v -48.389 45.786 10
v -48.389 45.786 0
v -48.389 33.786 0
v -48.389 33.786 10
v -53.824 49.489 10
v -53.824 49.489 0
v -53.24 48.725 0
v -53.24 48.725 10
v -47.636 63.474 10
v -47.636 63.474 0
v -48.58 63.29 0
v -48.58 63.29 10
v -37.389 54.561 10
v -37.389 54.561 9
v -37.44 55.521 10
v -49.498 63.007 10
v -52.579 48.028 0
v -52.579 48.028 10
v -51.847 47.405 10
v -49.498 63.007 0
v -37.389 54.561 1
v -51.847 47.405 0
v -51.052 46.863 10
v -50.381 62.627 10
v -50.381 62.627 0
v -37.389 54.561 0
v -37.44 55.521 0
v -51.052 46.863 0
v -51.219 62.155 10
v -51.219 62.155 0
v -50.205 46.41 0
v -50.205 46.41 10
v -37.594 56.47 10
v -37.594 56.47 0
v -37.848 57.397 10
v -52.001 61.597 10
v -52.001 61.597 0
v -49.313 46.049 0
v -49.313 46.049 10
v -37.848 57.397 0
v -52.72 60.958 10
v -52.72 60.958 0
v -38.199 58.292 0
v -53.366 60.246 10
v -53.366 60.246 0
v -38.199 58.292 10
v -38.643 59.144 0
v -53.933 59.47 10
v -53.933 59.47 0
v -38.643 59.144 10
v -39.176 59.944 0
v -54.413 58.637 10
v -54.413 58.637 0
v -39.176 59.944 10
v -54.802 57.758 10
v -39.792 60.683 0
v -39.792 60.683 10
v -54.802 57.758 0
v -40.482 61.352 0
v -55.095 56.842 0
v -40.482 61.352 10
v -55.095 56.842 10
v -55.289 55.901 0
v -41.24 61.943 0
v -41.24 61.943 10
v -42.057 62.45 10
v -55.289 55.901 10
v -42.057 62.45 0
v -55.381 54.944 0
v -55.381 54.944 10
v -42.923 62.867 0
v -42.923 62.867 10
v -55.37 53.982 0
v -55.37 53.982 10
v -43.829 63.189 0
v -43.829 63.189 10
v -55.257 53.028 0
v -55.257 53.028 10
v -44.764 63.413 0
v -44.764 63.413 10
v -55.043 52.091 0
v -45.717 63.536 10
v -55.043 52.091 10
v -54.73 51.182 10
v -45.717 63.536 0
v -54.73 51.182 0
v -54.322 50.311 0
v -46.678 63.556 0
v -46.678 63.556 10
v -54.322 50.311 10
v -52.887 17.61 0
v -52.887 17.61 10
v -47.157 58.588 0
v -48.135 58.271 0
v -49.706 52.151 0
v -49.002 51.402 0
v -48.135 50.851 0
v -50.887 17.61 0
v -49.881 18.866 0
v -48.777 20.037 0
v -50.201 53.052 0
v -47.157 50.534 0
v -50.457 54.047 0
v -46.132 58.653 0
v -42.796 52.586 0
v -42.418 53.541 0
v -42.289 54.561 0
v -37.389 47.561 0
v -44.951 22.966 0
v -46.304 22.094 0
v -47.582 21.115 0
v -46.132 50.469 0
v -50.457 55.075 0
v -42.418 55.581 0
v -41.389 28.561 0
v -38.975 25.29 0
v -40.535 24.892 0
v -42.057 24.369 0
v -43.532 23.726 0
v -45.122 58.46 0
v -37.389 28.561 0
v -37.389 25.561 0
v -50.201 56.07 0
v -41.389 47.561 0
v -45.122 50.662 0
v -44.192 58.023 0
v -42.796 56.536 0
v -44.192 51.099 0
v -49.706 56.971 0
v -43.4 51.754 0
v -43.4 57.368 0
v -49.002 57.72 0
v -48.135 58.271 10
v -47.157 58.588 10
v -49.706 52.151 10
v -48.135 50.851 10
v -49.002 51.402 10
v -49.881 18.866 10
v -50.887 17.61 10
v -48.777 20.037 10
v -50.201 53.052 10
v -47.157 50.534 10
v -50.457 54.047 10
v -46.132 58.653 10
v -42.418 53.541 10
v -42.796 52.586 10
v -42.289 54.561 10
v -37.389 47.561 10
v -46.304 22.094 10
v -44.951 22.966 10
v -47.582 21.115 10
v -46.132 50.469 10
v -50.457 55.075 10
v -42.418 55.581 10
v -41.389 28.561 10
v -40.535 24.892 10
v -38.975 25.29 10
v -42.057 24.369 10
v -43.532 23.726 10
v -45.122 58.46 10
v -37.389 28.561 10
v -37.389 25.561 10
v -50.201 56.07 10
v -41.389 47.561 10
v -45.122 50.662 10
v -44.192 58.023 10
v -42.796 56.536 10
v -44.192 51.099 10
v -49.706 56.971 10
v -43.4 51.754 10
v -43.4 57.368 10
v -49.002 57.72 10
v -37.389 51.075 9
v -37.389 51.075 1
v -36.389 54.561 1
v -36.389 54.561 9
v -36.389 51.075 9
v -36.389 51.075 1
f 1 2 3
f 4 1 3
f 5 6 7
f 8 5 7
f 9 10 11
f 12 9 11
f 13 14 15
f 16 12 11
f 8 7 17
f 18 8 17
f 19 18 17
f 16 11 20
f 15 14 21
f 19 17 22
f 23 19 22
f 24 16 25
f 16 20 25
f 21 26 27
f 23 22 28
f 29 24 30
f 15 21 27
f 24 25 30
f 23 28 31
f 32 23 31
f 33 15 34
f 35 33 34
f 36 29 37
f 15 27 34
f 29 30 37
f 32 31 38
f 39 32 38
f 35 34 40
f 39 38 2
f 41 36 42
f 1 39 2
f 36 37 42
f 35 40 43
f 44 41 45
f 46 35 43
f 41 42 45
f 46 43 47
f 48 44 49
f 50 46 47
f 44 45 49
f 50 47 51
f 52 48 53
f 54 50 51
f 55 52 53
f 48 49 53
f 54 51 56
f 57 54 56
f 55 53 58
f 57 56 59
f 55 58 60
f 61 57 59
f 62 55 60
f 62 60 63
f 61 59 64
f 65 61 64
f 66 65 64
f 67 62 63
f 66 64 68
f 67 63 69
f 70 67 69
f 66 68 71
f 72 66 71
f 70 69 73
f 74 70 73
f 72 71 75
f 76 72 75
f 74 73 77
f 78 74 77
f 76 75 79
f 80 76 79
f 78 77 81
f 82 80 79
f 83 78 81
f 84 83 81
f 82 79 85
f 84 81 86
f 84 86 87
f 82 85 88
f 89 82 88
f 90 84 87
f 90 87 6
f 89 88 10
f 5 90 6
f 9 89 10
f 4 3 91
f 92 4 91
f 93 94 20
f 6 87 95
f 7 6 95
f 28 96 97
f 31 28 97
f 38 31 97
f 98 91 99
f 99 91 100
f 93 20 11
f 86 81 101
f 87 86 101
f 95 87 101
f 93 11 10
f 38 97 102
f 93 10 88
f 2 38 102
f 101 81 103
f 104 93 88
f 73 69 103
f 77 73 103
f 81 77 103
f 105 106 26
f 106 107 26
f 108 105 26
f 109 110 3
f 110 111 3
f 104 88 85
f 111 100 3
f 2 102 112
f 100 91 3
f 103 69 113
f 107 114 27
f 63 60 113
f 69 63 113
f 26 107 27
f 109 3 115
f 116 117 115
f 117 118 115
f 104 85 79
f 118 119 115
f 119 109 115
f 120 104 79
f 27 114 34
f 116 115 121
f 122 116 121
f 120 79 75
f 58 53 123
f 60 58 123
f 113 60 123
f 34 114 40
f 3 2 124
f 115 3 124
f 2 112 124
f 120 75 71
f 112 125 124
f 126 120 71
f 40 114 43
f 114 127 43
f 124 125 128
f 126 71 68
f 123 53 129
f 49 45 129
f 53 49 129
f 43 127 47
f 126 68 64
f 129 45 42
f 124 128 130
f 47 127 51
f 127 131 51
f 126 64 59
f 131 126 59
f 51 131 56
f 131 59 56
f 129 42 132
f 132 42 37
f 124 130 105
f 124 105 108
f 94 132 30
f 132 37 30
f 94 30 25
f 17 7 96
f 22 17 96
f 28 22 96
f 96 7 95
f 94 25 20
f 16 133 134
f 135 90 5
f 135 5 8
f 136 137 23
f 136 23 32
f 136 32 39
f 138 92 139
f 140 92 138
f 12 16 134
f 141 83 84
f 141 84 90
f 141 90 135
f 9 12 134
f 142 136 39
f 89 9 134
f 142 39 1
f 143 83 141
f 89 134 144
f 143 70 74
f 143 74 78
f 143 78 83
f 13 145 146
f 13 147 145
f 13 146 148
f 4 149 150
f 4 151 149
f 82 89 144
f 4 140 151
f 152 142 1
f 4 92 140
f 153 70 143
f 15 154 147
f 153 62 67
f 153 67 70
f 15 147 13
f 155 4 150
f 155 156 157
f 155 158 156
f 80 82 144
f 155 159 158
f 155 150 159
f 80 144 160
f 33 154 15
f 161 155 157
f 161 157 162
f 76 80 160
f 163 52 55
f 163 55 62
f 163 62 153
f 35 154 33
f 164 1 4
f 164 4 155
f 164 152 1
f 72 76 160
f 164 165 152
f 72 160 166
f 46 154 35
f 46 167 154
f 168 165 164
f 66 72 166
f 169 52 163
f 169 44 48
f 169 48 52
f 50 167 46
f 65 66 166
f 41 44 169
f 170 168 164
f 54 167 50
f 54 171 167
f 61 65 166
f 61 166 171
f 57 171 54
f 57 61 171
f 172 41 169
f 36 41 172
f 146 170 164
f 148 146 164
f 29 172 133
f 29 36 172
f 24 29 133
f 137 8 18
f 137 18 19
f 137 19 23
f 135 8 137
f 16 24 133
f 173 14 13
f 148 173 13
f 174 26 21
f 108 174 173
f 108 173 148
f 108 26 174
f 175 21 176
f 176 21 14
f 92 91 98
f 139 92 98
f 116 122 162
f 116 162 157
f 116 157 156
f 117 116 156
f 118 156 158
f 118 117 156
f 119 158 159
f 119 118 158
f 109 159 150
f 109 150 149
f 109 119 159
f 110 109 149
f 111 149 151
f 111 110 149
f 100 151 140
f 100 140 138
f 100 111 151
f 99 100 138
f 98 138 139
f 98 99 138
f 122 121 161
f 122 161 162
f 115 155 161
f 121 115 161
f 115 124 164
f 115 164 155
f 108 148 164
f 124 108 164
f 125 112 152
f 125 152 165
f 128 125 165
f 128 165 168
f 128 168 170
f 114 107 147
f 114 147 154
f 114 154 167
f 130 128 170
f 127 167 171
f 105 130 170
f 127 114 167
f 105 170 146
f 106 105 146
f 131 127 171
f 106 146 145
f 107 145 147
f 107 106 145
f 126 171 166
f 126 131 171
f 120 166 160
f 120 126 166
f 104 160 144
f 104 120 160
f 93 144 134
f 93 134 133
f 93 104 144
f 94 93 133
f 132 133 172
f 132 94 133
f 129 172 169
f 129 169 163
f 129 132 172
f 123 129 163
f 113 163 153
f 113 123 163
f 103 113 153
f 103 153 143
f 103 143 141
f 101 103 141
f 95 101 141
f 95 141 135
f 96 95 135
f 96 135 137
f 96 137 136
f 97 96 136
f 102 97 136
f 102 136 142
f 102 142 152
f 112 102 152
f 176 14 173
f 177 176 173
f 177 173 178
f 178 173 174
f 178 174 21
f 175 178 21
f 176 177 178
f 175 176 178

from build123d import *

# Parameters (mm, degrees)
SKETCH_R     = 4.1
PAD_DEPTH    = 10
SKETCH001_W  = 3.486151
SKETCH001_H  = 8
PAD001_DEPTH = 1


with BuildPart() as part:
    # Sketch → Pad (new body)
    with BuildSketch(Plane.XY):
        with BuildLine():
            Line((-48.388943, 45.786089), (-48.388943, 33.786089))
            Line((-48.388943, 33.786089), (-52.887429, 17.610197))
            Line((-52.887429, 17.610197), (-50.887429, 17.610197))
            ThreePointArc((-37.388943, 25.561053), (-44.951067, 22.965687), (-50.887429, 17.610197))
            Line((-37.388943, 28.561053), (-37.388943, 25.561053))
            Line((-41.388943, 28.561053), (-37.388943, 28.561053))
            Line((-41.388943, 47.561053), (-41.388943, 28.561053))
            Line((-37.388943, 47.561053), (-41.388943, 47.561053))
            Line((-37.388943, 54.561053), (-37.388943, 47.561053))
            ThreePointArc((-37.388943, 54.561053), (-52.001429, 61.596677), (-48.388943, 45.786089))
        make_face()
        with Locations((-46.388943, 54.561053)):
            Circle(SKETCH_R, mode=Mode.SUBTRACT)
    extrude(amount=PAD_DEPTH)

    # Sketch001 → Pad001 (new body)
    with BuildSketch(Plane.YZ.offset(-37.388943)):
        with Locations((52.817977, 5)):
            Rectangle(SKETCH001_W, SKETCH001_H)
    extrude(amount=PAD001_DEPTH)


solid = part.part
